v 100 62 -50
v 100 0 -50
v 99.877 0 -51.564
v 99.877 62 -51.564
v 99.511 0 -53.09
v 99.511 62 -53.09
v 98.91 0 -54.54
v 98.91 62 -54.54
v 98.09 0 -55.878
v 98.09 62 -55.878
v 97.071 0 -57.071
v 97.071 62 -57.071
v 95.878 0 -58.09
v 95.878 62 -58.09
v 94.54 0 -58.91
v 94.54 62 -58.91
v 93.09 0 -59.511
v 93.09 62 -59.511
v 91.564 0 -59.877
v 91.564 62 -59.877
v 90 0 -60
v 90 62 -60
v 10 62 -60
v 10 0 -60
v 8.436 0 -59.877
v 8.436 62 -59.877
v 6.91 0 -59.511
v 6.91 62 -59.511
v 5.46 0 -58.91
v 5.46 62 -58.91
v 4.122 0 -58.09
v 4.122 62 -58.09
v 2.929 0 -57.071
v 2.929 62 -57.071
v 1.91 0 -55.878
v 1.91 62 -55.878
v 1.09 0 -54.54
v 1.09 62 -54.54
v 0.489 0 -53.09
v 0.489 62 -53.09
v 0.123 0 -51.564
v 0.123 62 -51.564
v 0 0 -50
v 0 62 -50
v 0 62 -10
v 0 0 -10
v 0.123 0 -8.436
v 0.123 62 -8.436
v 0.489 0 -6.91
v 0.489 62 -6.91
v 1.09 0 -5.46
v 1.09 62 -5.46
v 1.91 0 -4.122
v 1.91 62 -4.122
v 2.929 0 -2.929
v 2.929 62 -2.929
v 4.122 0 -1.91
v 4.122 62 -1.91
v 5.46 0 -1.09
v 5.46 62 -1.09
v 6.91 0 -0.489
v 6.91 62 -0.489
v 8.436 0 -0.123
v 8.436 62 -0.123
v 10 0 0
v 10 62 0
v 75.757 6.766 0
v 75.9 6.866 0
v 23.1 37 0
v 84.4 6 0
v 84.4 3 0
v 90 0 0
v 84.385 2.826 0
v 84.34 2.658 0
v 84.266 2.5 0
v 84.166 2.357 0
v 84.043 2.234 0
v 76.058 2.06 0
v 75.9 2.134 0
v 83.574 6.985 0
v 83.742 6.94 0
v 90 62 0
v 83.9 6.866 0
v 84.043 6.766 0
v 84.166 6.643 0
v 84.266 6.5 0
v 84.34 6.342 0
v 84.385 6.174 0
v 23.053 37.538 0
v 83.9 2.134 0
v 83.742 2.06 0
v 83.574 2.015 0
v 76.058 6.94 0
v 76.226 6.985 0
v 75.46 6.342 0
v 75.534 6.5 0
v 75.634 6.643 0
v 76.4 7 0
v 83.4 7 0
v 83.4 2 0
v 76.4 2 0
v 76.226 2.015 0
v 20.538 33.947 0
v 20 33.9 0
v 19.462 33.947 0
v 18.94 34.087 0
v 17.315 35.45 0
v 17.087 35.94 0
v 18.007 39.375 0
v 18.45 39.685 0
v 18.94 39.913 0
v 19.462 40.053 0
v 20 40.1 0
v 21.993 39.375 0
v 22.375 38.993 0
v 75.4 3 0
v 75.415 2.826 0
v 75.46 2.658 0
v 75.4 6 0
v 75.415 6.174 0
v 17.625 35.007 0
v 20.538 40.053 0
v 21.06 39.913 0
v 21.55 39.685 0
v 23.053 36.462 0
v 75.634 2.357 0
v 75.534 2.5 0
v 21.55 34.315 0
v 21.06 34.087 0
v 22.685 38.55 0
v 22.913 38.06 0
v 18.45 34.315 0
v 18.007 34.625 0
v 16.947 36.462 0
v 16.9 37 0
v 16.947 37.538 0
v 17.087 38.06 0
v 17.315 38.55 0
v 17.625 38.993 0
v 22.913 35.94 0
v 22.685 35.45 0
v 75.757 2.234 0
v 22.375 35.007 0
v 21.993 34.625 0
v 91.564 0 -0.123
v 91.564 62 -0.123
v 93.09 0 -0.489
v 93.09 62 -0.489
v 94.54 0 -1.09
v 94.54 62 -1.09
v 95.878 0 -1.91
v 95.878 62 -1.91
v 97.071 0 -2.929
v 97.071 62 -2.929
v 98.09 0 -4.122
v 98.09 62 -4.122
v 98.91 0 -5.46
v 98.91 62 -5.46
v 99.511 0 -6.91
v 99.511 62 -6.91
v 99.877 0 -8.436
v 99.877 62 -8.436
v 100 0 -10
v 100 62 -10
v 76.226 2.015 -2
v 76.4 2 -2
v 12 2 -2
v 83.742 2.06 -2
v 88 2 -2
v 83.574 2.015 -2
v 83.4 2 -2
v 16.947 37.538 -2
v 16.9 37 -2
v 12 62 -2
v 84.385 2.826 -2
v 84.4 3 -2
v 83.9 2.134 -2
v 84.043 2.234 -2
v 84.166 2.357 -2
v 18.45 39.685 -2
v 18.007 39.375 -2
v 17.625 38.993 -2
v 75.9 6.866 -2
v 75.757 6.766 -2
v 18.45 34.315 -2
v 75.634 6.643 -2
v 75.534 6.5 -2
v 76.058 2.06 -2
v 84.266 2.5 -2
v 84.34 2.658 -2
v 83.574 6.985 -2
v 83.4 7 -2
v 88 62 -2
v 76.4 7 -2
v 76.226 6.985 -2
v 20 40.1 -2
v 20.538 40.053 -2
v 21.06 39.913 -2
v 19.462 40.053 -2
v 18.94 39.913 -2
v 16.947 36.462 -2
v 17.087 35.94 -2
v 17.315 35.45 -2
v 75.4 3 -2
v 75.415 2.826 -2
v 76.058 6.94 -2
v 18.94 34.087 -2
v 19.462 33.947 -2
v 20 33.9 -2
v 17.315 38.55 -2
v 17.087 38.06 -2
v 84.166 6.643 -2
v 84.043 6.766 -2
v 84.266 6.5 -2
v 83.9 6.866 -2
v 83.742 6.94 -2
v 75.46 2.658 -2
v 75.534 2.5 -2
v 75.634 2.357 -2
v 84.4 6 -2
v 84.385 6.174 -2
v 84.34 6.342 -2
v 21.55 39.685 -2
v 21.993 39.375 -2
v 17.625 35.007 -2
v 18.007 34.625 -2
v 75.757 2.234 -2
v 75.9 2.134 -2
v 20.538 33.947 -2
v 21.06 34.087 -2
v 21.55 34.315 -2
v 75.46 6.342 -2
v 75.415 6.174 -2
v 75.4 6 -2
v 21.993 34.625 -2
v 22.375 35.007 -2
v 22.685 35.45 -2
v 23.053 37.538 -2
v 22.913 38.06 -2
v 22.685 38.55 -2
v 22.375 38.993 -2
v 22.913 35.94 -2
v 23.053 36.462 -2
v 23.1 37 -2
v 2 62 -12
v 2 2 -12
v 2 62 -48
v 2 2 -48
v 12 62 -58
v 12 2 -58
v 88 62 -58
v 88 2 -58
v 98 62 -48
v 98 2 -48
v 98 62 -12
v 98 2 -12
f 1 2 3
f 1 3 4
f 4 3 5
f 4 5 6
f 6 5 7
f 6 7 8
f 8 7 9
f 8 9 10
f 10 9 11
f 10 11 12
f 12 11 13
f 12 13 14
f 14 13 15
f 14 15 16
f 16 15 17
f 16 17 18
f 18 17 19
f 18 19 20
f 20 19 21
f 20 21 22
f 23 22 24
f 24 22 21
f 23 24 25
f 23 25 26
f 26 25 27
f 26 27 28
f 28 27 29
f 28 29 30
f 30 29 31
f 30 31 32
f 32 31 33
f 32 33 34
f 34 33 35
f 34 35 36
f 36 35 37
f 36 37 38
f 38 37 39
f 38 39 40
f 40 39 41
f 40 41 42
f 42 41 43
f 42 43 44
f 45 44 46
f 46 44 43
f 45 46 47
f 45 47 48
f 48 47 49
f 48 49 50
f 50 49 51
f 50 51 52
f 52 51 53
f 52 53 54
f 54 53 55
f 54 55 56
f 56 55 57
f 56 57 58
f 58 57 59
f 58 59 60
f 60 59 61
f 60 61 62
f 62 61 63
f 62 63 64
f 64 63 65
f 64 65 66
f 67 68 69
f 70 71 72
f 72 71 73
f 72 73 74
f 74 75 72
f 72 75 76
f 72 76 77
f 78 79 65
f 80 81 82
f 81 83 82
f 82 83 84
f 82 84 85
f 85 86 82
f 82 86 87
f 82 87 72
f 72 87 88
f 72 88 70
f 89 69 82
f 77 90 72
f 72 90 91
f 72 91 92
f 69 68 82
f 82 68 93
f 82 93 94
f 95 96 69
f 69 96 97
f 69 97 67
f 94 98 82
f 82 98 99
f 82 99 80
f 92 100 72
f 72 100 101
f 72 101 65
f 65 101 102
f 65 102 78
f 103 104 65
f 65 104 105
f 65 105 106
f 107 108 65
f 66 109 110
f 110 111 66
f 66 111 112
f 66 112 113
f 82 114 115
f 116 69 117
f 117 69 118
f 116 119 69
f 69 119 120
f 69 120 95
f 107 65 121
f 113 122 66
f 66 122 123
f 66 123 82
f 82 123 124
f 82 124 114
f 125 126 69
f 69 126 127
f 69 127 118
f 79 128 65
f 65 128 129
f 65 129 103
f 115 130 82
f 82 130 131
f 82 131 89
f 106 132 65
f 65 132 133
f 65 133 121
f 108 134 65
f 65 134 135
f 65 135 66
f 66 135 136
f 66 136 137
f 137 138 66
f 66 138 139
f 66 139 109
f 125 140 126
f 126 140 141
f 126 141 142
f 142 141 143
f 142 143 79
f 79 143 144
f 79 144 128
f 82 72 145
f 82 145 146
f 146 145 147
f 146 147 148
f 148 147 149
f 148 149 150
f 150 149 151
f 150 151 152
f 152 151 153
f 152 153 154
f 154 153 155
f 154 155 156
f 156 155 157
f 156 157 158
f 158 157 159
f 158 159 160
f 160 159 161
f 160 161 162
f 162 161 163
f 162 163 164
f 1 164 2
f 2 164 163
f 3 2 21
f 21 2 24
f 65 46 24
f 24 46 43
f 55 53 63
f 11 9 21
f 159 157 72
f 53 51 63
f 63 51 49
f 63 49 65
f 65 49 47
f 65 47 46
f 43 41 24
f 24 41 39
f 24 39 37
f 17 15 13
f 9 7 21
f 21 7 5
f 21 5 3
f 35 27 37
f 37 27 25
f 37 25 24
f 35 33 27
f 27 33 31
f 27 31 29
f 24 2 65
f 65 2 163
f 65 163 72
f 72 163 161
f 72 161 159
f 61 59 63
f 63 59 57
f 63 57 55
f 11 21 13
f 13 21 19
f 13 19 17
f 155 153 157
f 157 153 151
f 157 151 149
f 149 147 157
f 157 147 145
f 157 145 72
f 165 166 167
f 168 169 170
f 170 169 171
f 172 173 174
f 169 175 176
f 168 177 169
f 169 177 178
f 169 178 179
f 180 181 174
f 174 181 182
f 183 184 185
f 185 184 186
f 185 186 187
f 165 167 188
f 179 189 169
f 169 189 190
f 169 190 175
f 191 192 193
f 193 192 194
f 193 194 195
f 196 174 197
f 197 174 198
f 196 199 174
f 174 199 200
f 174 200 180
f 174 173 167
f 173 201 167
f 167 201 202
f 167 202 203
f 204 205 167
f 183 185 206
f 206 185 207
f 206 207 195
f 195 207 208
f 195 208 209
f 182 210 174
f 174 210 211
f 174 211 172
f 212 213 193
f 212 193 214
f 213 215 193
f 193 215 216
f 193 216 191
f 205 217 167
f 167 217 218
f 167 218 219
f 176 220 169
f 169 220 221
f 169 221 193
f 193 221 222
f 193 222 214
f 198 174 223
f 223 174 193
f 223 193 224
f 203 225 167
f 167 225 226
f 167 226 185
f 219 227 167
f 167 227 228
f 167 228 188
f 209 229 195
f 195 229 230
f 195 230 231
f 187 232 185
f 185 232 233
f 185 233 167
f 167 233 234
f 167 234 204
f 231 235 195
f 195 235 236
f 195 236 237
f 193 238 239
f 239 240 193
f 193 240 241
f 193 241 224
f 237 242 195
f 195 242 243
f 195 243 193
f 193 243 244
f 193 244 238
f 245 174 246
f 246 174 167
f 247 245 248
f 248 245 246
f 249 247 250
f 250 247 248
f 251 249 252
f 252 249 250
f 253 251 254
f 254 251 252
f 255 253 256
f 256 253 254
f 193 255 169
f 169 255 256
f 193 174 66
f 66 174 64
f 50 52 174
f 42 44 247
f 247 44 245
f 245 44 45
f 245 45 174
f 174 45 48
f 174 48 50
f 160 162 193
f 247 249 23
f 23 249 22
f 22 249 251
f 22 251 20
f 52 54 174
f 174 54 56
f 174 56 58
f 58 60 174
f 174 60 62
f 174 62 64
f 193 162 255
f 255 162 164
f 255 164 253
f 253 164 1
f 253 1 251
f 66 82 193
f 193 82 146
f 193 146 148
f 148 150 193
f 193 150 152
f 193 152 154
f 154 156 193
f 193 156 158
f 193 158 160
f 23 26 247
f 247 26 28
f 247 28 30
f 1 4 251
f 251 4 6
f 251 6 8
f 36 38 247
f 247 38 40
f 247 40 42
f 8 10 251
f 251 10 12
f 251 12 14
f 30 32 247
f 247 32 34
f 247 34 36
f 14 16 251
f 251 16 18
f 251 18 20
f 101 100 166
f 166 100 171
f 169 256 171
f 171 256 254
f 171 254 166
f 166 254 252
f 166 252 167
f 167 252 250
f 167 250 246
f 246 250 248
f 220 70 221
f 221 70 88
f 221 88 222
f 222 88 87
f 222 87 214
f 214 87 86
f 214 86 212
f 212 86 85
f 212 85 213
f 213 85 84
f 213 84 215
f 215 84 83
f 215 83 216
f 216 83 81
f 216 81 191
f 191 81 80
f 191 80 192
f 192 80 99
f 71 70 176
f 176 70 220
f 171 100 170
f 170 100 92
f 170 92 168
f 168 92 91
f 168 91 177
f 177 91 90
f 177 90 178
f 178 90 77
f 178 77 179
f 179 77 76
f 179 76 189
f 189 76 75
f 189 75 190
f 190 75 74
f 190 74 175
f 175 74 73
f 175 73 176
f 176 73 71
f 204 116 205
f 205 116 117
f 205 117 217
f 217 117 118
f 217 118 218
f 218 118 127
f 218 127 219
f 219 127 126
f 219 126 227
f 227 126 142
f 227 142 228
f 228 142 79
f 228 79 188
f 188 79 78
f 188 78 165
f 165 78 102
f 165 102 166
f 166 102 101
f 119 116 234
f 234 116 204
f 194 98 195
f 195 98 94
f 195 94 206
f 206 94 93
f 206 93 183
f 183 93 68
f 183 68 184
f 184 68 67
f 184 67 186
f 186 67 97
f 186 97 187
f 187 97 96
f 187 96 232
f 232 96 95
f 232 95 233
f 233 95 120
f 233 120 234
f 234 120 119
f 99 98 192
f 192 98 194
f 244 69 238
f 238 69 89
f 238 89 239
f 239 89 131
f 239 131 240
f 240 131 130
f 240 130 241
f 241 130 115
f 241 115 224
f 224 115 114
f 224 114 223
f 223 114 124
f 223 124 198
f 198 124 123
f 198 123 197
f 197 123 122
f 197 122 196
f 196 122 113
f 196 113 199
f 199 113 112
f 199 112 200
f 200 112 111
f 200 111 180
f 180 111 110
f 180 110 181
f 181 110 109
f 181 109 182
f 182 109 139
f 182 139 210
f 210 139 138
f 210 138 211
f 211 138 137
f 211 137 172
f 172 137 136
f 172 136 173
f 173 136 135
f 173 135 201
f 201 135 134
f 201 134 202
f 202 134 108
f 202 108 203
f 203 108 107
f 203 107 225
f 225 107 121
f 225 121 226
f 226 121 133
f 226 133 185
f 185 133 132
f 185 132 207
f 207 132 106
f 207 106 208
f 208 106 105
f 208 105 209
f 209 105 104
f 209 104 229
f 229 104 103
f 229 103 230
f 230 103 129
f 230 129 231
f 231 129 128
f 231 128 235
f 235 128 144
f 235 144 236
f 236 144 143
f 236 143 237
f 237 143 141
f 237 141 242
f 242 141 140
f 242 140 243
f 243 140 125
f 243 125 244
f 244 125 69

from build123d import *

# Parameters (mm, degrees)
Y_KSEKLIK_EKSTR_ZYON1_DEPTH = 2
Y_KSEKLIK_EKSTR_ZYON2_DEPTH = 60
IZIM3_R                     = 3.1
KES_EKSTR_ZYON1_DEPTH       = 10


with BuildPart() as part:
    # Çizim1 → Yükseklik-Ekstrüzyon1 (new body)
    with BuildSketch(Plane(origin=(0, 0, 0), x_dir=(1, 0, 0), z_dir=(0, 1, 0))):
        with BuildLine():
            Line((10, 0), (90, 0))
            ThreePointArc((90, 0), (97.071067812, 2.928932188), (100, 10))
            Line((100, 10), (100, 50))
            ThreePointArc((100, 50), (97.071067812, 57.071067812), (90, 60))
            Line((90, 60), (10, 60))
            ThreePointArc((10, 60), (2.928932188, 57.071067812), (0, 50))
            Line((0, 50), (0, 10))
            ThreePointArc((0, 10), (2.928932188, 2.928932188), (10, 0))
        make_face()
    extrude(amount=Y_KSEKLIK_EKSTR_ZYON1_DEPTH)

    # Çizim2 → Yükseklik-Ekstrüzyon2 (add)
    with BuildSketch(Plane(origin=(0, 2, 0), x_dir=(1, 0, 0), z_dir=(0, 1, 0))):
        with BuildLine():
            Line((100, 10), (100, 50))
            ThreePointArc((100, 50), (97.071067812, 57.071067812), (90, 60))
            Line((90, 60), (10, 60))
            ThreePointArc((10, 60), (2.928932188, 57.071067812), (0, 50))
            Line((0, 50), (0, 10))
            ThreePointArc((0, 10), (2.928932188, 2.928932188), (10, 0))
            Line((10, 0), (90, 0))
            ThreePointArc((90, 0), (97.071067812, 2.928932188), (100, 10))
        make_face()
        Polygon((12, 2), (88, 2), (98, 12), (98, 48), (88, 58), (12, 58), (2, 48), (2, 12), align=None, mode=Mode.SUBTRACT)
    extrude(amount=Y_KSEKLIK_EKSTR_ZYON2_DEPTH)

    # Çizim3 → Kes-Ekstrüzyon1 (cut)
    with BuildSketch(Plane.XY):
        with Locations((20, 37)):
            Circle(IZIM3_R)
        with BuildLine():
            Line((76.4, 2), (83.4, 2))
            ThreePointArc((83.4, 2), (84.107106781, 2.292893219), (84.4, 3))
            Line((84.4, 3), (84.4, 6))
            ThreePointArc((84.4, 6), (84.107106781, 6.707106781), (83.4, 7))
            Line((83.4, 7), (76.4, 7))
            ThreePointArc((76.4, 7), (75.692893219, 6.707106781), (75.4, 6))
            Line((75.4, 6), (75.4, 3))
            ThreePointArc((75.4, 3), (75.692893219, 2.292893219), (76.4, 2))
        make_face()
    extrude(amount=-KES_EKSTR_ZYON1_DEPTH, mode=Mode.SUBTRACT)


solid = part.part
